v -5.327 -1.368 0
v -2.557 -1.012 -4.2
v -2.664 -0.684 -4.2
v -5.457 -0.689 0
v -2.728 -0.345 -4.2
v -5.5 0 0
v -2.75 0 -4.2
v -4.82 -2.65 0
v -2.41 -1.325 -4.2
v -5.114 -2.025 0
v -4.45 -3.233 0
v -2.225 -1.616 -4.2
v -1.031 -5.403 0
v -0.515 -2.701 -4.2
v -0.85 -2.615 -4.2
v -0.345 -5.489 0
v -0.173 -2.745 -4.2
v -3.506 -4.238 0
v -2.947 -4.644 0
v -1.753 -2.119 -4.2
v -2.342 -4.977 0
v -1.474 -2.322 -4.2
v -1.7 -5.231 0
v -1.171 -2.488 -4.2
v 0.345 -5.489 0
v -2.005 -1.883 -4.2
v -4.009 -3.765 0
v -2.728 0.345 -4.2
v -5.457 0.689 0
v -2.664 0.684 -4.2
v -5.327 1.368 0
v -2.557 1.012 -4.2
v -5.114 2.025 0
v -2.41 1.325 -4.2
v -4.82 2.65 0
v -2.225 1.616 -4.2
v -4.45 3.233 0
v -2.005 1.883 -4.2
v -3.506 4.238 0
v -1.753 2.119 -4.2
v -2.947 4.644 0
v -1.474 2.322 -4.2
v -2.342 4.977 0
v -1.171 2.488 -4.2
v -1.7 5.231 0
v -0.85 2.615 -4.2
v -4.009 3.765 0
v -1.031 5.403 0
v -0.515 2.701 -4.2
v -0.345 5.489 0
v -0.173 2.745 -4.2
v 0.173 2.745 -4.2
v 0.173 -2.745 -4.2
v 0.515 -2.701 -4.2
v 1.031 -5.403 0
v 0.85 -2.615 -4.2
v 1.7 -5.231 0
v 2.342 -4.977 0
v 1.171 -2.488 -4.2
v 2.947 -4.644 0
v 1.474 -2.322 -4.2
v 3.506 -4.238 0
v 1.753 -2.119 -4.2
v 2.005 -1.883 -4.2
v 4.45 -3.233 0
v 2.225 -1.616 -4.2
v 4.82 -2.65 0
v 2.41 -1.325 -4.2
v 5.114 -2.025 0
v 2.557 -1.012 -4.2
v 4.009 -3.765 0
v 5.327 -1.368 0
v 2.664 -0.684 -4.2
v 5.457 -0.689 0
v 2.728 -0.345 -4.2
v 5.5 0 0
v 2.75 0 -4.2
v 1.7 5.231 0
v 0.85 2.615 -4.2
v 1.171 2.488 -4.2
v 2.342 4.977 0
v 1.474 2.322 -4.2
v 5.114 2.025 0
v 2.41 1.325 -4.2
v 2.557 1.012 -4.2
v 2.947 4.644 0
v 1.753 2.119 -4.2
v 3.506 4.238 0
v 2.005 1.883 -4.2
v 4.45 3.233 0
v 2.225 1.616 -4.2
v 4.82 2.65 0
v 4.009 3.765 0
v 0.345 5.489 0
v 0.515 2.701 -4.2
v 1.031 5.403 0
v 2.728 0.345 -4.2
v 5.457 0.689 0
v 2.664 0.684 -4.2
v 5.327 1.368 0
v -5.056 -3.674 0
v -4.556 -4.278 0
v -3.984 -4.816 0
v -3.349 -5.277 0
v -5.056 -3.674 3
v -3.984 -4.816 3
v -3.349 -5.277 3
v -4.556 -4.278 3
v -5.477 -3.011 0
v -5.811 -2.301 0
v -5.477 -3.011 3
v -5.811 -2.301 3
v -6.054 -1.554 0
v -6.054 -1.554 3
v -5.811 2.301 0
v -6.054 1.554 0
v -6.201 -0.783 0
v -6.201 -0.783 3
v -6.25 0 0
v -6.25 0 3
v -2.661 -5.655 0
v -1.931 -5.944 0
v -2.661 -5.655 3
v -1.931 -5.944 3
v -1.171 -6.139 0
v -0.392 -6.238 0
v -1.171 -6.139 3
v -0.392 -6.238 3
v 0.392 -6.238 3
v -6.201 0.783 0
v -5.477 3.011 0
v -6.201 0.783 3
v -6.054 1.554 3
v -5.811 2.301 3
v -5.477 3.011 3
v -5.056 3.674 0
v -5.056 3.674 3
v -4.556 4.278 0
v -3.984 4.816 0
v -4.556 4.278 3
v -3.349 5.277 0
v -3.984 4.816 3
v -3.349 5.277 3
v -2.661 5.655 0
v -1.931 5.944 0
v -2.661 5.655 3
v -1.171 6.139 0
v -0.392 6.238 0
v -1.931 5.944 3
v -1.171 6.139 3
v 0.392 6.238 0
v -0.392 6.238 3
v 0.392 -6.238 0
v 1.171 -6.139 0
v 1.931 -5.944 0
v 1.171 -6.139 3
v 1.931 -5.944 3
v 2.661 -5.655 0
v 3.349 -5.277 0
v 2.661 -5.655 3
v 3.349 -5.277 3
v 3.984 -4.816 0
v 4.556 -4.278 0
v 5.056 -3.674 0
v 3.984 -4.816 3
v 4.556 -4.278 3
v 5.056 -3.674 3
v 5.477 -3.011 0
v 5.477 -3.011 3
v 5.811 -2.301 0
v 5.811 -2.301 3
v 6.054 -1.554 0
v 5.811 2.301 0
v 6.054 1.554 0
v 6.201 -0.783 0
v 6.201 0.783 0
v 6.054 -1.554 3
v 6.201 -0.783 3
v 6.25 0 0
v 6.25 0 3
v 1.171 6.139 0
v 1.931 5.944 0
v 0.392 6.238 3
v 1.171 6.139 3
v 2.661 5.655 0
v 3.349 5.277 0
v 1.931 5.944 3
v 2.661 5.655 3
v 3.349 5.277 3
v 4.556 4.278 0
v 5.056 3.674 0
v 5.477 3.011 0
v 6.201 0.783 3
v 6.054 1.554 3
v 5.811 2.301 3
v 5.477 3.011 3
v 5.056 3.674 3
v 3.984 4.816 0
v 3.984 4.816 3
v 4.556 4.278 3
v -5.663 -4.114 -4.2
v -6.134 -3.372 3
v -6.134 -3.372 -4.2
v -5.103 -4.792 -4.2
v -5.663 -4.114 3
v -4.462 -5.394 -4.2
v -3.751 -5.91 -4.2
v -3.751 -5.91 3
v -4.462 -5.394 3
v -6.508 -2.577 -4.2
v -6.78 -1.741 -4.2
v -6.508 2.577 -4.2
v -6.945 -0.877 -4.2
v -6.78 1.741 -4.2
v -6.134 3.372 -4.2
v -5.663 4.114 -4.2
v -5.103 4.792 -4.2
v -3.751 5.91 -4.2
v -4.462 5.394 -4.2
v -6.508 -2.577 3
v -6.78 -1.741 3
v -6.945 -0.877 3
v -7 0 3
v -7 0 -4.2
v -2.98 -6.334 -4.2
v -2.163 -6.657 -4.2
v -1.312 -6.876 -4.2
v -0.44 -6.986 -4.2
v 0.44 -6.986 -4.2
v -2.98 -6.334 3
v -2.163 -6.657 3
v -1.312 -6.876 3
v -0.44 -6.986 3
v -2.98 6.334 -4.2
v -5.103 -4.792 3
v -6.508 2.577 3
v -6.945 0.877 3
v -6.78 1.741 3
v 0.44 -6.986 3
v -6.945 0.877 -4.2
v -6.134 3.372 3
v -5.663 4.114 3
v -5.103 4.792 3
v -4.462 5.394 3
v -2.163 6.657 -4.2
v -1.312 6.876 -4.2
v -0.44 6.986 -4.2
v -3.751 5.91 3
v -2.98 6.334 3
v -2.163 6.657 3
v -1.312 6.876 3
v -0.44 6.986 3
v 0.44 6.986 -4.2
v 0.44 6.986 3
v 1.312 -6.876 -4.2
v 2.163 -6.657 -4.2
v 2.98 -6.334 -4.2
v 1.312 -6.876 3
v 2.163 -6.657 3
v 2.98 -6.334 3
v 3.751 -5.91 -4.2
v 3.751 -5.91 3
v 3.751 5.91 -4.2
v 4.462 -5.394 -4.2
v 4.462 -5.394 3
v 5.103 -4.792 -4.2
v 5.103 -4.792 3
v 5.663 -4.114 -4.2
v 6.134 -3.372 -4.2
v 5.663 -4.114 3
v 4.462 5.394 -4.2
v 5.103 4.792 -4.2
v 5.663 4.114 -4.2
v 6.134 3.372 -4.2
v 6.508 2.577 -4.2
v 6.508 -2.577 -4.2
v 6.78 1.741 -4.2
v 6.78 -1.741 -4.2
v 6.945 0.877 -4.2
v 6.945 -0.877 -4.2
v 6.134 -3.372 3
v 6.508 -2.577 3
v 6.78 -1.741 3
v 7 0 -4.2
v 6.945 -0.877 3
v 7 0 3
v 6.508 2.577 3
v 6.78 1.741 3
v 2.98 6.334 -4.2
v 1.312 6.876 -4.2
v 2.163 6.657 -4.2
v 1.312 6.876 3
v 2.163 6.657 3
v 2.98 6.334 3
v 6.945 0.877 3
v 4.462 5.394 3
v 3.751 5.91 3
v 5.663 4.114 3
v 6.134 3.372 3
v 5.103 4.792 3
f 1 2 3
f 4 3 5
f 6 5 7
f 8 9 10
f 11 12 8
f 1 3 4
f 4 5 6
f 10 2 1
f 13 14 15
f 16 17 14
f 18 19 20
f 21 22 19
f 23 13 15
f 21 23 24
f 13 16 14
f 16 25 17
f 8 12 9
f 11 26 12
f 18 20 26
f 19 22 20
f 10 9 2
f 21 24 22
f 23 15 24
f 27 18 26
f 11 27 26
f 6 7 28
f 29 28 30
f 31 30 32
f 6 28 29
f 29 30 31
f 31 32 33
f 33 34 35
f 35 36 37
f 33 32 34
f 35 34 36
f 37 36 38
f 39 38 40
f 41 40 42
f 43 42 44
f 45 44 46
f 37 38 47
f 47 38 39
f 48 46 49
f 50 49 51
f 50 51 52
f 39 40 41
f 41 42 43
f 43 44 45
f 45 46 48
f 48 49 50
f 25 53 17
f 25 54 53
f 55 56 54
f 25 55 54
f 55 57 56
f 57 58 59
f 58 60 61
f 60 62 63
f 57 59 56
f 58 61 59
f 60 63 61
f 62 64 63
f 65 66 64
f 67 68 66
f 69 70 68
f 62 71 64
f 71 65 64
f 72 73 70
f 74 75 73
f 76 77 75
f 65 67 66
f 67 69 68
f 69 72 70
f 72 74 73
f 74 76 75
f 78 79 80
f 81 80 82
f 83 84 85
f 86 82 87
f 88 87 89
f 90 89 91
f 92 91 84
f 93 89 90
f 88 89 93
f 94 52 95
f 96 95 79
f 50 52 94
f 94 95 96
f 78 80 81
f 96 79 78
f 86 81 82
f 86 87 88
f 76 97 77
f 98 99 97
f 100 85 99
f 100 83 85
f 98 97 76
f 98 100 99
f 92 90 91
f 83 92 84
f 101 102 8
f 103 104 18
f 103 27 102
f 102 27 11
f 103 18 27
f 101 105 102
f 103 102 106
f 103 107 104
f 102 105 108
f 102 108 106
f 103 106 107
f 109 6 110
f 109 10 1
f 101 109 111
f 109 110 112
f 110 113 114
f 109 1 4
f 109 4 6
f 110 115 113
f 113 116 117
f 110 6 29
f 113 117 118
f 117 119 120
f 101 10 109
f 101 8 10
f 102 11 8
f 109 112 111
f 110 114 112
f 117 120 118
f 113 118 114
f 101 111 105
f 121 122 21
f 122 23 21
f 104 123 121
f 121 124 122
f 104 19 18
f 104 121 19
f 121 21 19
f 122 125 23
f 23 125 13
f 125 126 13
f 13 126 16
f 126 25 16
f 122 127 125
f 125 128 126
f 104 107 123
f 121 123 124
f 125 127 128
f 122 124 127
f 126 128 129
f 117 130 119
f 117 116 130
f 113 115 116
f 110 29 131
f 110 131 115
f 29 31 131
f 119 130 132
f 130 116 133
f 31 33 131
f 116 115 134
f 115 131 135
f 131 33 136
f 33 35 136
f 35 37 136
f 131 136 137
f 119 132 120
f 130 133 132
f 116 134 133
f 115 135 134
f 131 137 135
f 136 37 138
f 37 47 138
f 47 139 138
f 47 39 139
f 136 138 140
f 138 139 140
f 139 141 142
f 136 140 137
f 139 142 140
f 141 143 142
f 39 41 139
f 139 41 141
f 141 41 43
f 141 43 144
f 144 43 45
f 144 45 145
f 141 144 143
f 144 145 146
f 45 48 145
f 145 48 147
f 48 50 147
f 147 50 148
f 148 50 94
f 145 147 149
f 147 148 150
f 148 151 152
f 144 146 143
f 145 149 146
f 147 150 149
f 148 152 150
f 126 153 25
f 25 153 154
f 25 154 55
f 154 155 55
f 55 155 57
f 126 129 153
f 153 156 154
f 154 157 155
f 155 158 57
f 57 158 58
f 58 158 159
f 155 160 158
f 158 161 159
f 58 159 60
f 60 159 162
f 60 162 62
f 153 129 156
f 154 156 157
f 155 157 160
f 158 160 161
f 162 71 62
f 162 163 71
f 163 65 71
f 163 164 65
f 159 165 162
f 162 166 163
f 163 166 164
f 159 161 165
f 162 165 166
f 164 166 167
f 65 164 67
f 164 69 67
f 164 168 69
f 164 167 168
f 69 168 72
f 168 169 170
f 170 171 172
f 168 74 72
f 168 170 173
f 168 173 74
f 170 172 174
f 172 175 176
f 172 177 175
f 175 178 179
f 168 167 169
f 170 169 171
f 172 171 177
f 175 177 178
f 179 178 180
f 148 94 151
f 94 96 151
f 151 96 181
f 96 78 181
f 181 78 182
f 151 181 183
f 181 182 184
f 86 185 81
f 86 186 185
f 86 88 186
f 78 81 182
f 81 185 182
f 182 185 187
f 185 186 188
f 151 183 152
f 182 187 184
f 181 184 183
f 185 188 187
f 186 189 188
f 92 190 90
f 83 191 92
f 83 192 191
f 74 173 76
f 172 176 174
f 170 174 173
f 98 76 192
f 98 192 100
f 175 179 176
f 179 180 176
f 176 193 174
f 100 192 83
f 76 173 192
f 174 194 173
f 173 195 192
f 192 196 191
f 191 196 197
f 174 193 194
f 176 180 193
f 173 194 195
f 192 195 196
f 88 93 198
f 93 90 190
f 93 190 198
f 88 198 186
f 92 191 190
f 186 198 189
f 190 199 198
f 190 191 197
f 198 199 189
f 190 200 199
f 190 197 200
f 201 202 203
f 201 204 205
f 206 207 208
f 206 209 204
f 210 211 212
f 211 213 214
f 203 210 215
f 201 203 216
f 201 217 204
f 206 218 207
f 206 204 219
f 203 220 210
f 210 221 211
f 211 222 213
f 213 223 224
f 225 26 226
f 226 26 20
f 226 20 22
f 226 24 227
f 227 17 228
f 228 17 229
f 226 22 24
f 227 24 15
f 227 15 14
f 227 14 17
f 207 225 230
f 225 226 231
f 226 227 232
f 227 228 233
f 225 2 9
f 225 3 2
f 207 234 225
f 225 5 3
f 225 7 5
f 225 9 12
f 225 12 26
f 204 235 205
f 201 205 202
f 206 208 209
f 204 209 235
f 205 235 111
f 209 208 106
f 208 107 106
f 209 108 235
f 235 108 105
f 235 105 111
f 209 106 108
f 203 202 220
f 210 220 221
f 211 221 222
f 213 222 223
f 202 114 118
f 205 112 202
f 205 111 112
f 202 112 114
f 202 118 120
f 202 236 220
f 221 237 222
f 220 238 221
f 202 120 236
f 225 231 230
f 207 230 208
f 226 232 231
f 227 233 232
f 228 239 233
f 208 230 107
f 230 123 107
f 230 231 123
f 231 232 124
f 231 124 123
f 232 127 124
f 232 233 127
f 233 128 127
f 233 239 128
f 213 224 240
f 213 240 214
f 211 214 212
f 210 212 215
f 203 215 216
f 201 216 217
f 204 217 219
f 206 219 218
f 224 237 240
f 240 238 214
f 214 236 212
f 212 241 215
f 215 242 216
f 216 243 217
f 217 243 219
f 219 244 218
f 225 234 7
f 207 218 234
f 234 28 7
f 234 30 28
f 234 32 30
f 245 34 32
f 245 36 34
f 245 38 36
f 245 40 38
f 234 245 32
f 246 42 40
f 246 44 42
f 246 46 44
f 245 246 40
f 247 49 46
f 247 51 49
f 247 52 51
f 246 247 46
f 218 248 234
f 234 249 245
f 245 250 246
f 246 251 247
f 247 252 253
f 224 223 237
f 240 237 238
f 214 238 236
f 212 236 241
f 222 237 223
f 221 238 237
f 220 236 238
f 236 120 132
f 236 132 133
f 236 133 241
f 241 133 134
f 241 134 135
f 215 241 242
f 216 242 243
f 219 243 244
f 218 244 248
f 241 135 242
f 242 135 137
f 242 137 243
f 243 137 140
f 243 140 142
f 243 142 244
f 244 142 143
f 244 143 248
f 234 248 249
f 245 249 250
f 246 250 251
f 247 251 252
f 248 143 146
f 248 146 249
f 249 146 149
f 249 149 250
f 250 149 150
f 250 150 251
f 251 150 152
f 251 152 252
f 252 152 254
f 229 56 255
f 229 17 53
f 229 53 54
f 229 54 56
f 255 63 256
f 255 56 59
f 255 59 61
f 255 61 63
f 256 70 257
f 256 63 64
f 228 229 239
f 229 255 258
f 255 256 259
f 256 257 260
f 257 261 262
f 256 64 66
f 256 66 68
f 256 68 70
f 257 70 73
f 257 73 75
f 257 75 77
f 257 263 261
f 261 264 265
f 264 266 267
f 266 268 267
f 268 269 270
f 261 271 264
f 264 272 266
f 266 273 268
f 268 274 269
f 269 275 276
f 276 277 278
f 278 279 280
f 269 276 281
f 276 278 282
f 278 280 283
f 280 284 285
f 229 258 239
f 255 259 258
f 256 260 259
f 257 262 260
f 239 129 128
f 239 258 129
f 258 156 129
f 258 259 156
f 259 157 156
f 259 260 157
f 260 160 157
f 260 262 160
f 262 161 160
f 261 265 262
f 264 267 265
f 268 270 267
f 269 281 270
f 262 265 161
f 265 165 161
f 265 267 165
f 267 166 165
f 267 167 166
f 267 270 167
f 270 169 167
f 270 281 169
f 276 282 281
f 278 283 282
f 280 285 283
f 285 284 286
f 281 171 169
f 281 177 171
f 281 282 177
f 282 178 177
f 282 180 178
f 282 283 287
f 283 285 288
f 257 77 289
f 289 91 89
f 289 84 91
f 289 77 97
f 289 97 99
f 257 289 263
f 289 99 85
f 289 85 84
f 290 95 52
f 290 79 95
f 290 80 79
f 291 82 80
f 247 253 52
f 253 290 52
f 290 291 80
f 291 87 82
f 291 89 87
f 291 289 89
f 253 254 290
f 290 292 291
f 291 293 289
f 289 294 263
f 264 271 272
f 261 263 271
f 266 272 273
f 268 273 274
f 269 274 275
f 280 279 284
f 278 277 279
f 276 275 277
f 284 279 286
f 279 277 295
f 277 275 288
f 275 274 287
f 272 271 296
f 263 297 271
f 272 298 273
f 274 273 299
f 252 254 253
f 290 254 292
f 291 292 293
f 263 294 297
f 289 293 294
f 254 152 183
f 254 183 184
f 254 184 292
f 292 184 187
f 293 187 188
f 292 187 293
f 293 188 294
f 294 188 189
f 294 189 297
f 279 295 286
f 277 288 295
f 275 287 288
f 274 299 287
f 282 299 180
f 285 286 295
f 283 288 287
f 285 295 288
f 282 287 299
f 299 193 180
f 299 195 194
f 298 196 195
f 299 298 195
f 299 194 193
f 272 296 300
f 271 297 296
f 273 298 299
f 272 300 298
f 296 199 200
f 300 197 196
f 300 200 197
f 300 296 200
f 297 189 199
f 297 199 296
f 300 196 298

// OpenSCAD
$fn = 50;

difference() {
	union() {
		translate(v = [0, 0, -4.2]) {
			cylinder(h = 7.2, r = 7.0);
		}
	}
	union() {
		translate(v = [0, 0, 0]) {
			rotate(a = [0, 0, 0]) {
				difference() {
					union() {
						translate(v = [0, 0, -7.2]) {
							cylinder(h = 7.2, r = 2.25);
						}
						translate(v = [0, 0, -4.2]) {
							cylinder(h = 4.2, r1 = 2.75, r2 = 5.5);
						}
						translate(v = [0, 0, -7.2]) {
							cylinder(h = 7.2, r = 2.75);
						}
						translate(v = [0, 0, -7.2]) {
							cylinder(h = 7.2, r = 2.25);
						}
					}
					union();
				}
			}
		}
		#cylinder(h = 3, r = 6.25);
	}
}
